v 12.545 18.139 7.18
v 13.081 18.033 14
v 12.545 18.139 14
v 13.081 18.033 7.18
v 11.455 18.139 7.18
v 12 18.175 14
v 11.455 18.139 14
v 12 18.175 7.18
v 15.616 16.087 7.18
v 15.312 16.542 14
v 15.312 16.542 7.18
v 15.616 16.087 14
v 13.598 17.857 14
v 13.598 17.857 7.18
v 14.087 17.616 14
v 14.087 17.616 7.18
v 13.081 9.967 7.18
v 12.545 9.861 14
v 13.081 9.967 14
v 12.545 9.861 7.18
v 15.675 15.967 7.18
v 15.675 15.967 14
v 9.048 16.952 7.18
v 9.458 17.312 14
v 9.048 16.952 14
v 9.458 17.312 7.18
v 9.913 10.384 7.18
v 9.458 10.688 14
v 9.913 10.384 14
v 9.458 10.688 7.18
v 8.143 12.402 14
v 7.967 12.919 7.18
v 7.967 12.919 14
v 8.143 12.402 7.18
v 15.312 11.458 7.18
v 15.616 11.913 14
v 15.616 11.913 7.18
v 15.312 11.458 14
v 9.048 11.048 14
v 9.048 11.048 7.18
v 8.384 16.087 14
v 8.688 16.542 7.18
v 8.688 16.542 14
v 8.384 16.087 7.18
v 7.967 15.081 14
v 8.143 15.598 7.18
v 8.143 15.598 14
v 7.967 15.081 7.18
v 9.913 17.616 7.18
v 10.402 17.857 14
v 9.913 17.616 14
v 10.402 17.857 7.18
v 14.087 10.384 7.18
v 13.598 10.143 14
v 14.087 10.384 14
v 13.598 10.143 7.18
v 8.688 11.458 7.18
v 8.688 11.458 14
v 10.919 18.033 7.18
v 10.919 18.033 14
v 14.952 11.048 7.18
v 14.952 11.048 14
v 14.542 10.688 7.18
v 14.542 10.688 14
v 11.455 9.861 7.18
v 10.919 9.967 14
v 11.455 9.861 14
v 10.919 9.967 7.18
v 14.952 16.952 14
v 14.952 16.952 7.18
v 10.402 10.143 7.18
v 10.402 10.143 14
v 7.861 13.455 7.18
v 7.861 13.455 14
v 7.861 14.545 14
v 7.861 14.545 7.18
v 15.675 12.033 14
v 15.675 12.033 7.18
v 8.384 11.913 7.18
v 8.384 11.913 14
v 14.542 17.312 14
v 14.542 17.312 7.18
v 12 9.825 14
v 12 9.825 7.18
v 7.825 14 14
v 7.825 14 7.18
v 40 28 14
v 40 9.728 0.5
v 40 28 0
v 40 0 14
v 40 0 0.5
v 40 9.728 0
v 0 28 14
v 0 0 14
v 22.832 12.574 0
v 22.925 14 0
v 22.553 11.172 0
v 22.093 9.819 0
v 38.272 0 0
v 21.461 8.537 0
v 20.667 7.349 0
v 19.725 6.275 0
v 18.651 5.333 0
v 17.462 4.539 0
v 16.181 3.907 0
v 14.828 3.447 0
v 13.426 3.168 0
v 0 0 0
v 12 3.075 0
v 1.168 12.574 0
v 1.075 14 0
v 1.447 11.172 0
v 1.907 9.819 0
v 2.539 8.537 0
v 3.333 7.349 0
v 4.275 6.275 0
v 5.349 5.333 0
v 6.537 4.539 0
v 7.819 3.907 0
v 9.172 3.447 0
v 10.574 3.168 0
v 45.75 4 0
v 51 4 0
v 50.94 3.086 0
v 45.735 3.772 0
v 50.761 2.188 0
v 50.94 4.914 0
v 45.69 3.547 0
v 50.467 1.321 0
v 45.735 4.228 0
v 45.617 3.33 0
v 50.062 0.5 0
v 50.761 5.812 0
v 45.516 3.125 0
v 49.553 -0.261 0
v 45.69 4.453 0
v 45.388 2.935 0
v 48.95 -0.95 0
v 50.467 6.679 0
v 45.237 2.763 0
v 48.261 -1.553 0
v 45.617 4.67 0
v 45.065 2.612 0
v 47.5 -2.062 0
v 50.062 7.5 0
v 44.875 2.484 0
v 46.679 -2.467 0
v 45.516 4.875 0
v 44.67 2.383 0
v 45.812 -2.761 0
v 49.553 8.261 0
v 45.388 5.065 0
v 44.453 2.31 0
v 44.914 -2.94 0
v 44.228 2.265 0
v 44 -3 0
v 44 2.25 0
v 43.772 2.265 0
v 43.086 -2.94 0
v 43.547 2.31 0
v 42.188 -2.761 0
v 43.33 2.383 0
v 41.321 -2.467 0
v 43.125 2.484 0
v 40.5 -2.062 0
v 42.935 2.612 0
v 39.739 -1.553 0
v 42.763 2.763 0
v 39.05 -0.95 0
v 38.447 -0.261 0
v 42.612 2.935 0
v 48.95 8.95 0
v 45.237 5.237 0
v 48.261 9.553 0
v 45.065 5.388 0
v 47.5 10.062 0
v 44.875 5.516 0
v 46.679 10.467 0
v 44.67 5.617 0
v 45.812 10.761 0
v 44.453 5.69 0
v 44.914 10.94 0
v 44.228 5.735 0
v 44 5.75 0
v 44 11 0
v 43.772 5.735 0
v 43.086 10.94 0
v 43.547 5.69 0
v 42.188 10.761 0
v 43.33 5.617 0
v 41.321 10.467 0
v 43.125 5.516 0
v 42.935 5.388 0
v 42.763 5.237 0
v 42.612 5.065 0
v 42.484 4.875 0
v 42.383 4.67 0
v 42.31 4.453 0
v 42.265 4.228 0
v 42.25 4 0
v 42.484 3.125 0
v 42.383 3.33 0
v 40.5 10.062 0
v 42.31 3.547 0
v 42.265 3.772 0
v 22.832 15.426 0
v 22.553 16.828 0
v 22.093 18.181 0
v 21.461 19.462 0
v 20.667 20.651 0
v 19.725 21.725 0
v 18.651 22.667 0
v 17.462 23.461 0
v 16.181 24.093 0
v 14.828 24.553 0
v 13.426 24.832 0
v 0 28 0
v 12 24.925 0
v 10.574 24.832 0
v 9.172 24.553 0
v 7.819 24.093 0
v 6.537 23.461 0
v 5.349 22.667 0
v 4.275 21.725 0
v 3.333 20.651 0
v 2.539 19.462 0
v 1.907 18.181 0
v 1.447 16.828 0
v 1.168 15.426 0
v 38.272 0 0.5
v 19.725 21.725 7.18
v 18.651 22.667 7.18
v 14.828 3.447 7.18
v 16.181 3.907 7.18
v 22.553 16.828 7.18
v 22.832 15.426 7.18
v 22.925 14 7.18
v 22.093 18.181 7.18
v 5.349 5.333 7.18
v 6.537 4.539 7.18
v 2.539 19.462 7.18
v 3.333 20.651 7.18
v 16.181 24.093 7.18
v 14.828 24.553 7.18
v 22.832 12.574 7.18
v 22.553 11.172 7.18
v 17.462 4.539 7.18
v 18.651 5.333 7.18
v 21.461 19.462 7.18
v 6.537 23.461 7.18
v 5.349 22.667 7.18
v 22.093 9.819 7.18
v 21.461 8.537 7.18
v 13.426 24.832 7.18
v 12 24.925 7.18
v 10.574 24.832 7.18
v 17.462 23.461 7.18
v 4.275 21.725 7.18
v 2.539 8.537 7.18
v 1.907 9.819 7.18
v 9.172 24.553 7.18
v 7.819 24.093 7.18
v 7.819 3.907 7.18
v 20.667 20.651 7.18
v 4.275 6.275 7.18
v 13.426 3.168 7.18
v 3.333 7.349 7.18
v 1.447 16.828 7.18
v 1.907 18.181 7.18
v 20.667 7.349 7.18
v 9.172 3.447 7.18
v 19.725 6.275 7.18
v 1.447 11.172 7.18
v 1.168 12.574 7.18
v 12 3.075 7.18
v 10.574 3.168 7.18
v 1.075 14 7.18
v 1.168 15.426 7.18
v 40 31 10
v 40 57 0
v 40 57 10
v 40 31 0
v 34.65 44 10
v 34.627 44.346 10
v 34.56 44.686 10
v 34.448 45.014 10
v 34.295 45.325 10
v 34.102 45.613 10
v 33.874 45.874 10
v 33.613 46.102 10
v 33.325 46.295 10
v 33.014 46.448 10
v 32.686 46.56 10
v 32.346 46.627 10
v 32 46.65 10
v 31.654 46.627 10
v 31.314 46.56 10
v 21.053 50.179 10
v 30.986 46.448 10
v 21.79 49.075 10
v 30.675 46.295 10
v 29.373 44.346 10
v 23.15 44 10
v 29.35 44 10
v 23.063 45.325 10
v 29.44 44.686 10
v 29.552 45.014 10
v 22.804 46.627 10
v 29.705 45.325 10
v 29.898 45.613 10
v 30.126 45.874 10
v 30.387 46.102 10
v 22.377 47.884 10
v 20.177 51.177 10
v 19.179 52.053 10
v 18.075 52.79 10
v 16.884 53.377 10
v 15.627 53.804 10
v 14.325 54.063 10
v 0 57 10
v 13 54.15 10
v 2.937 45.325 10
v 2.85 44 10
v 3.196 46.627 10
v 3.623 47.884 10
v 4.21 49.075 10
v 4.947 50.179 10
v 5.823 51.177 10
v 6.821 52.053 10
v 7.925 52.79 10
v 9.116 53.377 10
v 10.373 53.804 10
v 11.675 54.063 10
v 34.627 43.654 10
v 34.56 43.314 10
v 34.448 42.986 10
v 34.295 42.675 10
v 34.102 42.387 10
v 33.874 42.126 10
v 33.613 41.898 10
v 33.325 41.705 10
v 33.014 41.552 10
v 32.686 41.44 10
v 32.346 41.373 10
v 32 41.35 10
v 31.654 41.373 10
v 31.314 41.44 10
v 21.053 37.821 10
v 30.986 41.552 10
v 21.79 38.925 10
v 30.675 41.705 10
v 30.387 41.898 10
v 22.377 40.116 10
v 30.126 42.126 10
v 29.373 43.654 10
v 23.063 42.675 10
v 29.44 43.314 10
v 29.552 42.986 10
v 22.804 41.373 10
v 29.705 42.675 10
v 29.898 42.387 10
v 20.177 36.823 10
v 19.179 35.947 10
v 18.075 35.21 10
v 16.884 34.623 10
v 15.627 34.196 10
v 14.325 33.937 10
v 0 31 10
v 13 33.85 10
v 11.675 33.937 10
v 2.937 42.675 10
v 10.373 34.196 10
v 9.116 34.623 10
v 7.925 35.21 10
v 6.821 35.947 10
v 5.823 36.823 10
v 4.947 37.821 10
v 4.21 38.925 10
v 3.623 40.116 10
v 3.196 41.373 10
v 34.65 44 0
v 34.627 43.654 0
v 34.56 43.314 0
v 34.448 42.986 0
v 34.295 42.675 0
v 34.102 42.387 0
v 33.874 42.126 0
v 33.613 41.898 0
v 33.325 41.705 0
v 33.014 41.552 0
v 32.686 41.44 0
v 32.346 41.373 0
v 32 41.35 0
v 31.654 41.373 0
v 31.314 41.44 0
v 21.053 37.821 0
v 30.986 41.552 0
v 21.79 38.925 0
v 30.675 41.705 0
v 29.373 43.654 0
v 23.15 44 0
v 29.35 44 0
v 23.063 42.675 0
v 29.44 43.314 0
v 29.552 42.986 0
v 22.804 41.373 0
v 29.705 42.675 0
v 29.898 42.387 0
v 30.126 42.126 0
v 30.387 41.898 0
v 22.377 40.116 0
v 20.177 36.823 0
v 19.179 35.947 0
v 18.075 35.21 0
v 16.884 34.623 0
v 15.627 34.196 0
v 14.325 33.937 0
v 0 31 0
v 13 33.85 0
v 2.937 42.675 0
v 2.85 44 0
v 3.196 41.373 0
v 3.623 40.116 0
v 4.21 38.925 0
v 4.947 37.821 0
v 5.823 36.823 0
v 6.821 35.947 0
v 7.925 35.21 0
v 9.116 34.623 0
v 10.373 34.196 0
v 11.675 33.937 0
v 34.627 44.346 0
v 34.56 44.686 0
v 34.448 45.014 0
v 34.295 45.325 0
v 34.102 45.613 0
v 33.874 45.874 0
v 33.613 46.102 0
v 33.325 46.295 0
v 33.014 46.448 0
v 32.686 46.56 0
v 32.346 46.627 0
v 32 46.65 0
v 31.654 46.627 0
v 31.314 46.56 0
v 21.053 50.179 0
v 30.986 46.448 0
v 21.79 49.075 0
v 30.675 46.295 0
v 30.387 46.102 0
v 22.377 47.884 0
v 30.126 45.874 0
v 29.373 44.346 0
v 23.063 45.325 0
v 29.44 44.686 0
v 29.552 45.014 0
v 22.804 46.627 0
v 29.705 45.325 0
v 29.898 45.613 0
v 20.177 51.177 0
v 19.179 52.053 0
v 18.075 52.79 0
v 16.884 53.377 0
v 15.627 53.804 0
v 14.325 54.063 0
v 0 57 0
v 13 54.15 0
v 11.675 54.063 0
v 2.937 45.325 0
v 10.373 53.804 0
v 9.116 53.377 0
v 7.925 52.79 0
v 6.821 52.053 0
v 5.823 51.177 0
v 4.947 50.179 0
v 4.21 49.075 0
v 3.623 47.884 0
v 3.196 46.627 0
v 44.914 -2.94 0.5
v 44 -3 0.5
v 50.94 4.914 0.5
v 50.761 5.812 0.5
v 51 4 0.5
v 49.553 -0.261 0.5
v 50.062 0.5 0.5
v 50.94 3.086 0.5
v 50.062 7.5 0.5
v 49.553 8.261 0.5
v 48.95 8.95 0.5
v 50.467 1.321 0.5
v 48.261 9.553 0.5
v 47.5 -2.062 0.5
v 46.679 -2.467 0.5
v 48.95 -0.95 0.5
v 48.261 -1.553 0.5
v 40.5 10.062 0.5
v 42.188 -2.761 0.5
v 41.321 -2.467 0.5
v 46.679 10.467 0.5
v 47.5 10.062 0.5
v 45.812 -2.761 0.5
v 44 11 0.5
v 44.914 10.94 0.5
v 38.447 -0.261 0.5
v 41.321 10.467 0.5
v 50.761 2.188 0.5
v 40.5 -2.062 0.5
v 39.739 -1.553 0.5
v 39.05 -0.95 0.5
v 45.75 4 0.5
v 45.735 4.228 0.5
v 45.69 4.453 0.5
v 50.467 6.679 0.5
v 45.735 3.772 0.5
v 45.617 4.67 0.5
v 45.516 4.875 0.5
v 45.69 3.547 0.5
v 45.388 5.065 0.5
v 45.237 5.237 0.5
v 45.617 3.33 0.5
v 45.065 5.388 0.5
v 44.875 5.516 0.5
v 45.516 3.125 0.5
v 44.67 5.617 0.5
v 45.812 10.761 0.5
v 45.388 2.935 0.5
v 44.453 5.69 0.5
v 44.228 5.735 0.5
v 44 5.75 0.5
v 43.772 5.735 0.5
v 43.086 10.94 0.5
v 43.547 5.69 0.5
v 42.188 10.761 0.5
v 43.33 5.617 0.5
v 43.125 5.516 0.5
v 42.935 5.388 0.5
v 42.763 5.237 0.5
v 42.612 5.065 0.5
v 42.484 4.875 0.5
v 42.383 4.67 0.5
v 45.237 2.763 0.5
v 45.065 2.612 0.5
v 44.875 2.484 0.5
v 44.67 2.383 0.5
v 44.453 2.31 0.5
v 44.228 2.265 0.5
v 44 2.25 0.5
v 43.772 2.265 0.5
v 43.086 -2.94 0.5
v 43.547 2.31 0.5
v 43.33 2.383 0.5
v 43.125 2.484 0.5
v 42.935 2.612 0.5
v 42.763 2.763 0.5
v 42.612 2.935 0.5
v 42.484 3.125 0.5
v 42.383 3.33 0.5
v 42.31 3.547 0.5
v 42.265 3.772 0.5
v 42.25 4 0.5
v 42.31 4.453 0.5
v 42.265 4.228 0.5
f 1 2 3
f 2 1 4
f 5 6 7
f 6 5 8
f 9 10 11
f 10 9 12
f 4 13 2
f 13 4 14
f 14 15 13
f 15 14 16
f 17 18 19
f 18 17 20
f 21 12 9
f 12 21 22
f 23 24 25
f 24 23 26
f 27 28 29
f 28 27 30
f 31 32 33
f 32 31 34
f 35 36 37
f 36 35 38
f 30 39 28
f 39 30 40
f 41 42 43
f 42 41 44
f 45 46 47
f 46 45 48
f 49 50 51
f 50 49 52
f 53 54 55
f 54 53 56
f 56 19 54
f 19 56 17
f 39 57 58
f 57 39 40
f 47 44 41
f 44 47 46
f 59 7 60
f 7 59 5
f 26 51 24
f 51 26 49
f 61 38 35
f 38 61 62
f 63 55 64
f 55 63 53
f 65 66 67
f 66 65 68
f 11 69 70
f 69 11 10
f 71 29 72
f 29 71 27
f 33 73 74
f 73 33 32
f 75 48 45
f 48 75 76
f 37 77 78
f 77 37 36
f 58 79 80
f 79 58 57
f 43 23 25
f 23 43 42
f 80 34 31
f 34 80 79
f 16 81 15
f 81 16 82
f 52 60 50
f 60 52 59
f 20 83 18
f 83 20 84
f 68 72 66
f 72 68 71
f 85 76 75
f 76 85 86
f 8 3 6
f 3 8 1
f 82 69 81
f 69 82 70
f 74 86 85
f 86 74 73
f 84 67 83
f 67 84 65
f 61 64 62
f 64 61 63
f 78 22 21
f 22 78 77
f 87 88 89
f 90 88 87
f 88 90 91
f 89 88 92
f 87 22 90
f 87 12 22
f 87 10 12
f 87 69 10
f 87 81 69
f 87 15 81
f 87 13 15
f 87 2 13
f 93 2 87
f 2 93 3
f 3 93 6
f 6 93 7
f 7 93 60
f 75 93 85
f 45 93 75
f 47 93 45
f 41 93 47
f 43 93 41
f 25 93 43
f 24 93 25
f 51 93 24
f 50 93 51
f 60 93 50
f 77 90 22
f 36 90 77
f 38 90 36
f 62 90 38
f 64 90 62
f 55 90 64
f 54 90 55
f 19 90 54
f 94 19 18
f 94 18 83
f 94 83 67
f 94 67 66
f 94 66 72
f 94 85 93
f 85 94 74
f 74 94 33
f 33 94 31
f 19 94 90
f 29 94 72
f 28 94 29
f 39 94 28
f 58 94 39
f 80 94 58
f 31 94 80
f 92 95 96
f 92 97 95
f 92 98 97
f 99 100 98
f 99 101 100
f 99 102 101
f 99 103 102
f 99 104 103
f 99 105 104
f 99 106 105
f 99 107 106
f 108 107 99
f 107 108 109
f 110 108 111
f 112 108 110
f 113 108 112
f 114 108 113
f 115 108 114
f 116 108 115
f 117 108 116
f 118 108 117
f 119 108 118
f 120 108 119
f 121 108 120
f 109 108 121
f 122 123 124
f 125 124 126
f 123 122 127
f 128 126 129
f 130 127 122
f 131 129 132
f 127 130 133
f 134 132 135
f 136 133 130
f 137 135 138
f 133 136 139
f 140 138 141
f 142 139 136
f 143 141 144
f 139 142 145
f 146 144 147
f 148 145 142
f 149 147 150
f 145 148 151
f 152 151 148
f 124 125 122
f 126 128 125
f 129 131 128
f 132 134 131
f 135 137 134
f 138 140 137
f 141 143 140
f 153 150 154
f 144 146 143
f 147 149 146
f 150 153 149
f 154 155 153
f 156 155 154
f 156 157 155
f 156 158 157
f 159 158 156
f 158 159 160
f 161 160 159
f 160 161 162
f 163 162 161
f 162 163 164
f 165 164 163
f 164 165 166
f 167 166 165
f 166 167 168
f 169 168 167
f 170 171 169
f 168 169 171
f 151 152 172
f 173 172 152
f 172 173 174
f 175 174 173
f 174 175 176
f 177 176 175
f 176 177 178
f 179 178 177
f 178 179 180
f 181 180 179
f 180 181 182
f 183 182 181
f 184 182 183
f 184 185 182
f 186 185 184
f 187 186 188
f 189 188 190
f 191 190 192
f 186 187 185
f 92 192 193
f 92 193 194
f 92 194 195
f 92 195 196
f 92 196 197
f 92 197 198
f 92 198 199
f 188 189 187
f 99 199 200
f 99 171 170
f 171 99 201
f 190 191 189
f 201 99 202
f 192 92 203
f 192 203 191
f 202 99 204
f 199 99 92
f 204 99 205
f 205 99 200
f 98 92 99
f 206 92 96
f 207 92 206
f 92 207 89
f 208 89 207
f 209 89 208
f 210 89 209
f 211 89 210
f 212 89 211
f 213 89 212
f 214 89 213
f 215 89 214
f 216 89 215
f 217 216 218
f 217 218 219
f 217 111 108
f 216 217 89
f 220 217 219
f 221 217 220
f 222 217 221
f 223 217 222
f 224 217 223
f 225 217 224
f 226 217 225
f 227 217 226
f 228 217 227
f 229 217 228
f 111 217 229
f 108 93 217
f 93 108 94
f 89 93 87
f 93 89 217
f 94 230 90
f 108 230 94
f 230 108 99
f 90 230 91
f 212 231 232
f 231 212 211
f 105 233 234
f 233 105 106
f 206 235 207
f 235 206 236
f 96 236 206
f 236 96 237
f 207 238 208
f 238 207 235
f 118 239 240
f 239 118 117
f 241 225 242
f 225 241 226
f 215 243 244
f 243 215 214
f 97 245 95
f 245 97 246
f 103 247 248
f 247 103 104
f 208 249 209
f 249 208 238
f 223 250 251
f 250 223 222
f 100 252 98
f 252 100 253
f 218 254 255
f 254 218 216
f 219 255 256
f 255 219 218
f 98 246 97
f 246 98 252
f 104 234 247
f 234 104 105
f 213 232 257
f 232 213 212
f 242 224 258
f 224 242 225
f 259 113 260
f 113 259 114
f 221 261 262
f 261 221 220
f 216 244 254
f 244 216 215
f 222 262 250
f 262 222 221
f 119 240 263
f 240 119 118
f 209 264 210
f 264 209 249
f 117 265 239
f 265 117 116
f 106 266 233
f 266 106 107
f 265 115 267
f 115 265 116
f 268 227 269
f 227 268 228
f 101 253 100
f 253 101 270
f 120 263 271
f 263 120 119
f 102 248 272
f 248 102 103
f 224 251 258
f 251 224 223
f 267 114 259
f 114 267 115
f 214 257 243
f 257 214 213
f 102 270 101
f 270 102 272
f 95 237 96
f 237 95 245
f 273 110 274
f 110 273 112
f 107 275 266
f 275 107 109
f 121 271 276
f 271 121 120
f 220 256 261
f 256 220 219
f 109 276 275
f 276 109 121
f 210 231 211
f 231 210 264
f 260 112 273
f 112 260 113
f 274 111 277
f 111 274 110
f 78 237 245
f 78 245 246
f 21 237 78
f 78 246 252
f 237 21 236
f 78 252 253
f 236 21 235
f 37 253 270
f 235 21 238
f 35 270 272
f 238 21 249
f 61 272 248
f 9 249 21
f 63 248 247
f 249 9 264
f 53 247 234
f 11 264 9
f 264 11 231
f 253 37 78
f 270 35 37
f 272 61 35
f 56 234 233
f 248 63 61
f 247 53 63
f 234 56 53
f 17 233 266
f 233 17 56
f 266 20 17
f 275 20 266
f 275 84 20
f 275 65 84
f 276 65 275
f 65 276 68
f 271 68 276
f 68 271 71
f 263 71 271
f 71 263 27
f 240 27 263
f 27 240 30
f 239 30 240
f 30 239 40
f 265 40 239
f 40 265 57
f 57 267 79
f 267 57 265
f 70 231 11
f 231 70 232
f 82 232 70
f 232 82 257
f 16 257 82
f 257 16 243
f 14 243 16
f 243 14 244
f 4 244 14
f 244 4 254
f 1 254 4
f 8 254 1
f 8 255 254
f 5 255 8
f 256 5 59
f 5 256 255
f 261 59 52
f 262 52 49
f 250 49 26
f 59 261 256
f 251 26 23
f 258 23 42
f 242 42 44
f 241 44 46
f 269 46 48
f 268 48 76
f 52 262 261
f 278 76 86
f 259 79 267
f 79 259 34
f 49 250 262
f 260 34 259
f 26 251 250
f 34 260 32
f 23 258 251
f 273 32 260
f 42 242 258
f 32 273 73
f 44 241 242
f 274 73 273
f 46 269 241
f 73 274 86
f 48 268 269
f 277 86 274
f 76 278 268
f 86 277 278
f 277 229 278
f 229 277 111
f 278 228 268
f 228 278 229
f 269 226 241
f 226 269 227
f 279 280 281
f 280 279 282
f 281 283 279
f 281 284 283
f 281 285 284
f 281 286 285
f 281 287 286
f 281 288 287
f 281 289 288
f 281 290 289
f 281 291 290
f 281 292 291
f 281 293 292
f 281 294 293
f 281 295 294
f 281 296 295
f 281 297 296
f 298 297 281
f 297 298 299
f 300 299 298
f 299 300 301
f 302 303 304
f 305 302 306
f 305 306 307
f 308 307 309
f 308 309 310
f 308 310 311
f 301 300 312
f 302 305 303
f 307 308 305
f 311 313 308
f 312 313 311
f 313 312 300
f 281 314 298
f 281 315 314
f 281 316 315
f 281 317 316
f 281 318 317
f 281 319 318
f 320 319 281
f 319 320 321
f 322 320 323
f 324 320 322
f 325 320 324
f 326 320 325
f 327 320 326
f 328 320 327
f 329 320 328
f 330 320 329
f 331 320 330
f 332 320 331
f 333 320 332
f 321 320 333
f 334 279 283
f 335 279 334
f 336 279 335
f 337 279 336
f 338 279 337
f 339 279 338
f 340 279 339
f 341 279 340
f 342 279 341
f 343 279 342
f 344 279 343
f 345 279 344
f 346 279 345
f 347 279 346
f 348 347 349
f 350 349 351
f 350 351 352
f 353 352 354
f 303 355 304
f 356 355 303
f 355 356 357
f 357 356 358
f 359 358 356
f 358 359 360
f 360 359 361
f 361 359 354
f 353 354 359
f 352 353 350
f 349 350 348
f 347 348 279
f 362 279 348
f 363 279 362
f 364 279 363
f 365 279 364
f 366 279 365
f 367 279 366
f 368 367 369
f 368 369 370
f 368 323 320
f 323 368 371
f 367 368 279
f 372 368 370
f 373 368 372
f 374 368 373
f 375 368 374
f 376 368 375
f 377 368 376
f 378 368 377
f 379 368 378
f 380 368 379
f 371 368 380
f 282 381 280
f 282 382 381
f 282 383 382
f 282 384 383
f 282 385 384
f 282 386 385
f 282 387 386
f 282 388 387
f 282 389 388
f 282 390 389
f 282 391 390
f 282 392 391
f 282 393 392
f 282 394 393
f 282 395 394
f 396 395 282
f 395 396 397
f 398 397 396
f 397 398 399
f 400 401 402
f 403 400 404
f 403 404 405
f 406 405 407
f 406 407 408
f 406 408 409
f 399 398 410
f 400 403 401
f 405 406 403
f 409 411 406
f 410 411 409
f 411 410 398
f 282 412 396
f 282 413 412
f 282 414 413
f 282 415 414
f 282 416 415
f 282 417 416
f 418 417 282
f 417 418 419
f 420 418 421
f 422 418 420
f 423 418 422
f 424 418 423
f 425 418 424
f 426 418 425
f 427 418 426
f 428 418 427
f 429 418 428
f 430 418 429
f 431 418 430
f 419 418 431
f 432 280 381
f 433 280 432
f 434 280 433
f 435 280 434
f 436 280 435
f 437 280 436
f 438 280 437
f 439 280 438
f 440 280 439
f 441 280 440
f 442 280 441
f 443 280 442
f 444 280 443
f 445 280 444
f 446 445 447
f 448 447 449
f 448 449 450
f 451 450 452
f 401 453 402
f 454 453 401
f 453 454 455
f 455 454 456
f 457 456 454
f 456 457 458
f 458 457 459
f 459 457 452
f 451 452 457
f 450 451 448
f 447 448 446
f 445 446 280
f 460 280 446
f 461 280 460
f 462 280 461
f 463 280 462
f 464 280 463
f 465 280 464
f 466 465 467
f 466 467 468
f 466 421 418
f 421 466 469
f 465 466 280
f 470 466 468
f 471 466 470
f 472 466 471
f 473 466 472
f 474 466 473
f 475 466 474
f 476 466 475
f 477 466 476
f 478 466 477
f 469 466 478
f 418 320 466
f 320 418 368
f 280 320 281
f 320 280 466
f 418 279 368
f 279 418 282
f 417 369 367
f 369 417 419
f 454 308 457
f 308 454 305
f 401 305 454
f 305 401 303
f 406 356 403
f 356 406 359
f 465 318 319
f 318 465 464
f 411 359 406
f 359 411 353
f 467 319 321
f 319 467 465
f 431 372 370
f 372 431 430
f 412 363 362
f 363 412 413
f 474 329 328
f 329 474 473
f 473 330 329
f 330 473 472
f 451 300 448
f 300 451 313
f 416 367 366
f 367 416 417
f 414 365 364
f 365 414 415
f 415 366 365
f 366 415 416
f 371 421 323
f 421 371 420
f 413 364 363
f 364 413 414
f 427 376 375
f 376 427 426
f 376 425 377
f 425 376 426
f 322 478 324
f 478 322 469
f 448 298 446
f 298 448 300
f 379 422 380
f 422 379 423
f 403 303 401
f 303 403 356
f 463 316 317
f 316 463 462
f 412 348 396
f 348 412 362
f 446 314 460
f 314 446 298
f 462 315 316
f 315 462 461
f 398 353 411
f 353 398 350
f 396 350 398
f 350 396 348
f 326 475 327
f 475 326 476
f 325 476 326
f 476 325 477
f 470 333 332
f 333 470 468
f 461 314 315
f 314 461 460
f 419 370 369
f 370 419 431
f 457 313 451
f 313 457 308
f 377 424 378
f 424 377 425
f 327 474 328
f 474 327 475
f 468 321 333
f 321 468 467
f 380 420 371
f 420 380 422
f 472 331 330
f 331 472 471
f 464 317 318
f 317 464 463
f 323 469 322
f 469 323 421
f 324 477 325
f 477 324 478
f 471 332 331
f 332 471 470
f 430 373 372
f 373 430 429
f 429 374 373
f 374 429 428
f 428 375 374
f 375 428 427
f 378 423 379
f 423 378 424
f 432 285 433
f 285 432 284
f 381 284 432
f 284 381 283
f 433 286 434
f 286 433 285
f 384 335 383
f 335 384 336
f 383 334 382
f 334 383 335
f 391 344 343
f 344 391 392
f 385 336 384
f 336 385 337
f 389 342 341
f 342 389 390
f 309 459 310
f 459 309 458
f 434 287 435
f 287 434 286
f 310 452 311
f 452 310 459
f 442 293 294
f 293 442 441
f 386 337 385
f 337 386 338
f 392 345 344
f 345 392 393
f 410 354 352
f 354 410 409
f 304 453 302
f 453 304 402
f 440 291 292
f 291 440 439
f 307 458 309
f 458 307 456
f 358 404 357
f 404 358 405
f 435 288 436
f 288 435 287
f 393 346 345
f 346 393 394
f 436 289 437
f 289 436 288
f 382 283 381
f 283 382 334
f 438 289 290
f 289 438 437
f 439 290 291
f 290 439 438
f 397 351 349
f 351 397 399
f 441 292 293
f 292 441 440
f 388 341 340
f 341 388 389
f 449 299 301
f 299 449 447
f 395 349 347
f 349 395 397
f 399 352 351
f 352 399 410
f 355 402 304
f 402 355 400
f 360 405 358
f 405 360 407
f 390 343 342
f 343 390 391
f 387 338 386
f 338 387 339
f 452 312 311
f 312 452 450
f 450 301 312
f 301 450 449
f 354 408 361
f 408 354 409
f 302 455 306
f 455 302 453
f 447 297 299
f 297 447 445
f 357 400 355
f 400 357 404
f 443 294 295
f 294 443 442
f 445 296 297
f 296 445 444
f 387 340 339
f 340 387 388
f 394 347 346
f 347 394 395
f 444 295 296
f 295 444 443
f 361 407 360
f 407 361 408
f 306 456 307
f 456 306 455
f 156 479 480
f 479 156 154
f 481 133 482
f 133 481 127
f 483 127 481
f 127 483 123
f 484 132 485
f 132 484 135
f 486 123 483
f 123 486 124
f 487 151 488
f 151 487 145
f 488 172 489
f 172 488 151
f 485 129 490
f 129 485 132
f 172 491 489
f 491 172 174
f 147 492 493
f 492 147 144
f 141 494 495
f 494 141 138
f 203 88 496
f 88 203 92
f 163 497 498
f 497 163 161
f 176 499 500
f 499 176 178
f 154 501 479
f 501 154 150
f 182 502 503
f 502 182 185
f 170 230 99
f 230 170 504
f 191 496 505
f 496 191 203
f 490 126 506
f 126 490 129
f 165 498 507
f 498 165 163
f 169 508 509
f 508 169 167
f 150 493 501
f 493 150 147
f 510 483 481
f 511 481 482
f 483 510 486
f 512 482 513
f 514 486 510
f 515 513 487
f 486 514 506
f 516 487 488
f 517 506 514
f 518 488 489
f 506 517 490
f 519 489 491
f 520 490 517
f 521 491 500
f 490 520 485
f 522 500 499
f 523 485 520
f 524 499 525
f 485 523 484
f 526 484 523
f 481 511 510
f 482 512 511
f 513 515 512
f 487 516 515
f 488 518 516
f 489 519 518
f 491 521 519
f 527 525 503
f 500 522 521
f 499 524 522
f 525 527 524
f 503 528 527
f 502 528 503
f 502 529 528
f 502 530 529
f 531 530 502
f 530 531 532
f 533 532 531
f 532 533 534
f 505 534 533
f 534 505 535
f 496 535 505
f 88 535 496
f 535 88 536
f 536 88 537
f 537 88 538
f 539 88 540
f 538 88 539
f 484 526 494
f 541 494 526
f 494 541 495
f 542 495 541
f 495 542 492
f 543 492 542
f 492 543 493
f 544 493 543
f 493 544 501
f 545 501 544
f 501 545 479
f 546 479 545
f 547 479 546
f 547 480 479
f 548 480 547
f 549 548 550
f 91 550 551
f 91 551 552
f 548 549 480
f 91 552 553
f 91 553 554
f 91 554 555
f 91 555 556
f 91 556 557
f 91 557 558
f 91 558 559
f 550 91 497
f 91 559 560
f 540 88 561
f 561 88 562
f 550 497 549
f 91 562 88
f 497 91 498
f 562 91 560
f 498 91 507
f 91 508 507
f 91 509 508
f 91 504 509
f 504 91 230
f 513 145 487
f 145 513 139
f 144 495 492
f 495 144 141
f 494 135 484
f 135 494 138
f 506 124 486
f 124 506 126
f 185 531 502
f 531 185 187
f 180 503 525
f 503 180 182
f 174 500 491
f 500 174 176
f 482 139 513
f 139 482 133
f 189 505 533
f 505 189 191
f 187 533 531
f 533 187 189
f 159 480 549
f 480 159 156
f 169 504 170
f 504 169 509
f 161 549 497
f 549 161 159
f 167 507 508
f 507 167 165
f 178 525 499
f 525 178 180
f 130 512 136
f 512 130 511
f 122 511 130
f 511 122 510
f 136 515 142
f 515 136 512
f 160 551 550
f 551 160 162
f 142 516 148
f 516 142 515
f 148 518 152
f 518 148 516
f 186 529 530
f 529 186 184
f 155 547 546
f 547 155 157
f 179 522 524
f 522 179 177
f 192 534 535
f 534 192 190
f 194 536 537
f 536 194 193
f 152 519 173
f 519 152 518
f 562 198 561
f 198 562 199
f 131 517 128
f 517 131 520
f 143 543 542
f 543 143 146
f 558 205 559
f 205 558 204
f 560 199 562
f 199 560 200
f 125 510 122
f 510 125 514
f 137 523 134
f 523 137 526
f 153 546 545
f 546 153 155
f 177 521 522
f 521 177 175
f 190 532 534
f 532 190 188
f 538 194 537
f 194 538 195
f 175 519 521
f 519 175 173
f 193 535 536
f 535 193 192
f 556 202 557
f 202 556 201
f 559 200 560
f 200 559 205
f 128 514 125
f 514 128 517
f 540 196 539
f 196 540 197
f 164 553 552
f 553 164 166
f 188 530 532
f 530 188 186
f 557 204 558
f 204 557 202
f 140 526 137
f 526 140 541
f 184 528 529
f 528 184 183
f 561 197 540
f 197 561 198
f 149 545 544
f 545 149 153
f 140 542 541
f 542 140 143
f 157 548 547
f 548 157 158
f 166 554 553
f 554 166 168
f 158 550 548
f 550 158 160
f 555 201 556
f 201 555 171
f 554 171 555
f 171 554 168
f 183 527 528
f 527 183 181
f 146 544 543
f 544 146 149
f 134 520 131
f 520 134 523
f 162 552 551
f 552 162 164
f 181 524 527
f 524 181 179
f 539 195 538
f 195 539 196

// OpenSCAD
// file: parameters.scad
// =============================================================================
// Gen-BW — nightly 2026-10-10 (physics_scorer, honest magpylib watts)
// Stacked poles: two Ø20×5 per pocket (10 mm poles), 4 per rotor at R52, trading pole count for field — peak Bz at the copper rises to ≈0.73 T (vs 0.54 T on Gen-BR), which lets a thin 6.75 mm copper layer with a very deep 21 mm build carry the turns. But the electrical frequency halves, and the scorer puts it at about 45 % of Gen-BR: the thicker magnets do not make up for half the poles.
// Clocking 0 deg (magnets N facing S) + D-flat keyed bore + index notch + flip-symmetric hole map.
// Windable 2-piece bobbin; turns = physics_scorer turns_fit; copper only between flanges.
// Steel back-iron: 2× Ø134 × 6.35 mm (1/4") mild-steel discs (steel_backiron_disc.dxf); magnets sit ON the steel
// (through-pockets) -> score with --back-iron. Night 2026-10-10.
// =============================================================================
topology            = "dual_rotor";

// --- Wire / winding (physics_scorer winding-fit) -------------------------------
wire_awg            = 26;
wire_od             = 0.45;     // insulated OD mm (bare 0.405)
fill_realistic      = 0.65;     // insulated-wire area / window (DENSE layered wind with a jig; scorer cap 0.65)
turns               = 586;       // = physics_scorer turns_fit (do NOT raise)
coil_former_type    = "bobbin";
coil_core_inset     = 21.25;     // radial copper build: hub = copper boundary inset by this
wind_build_axial    = 0.0;      // nothing proud of the flanges
wind_build_radial   = 0.0;

// --- Bobbin (base + lid) ---------------------------------------------------------
coil_id_r           = 26.00;    // copper boundary sector
coil_od_r           = 74.00;
span_deg            = 52.72;    // = pitch - 2*asin((wall+0.85)/coil_id_r) -> >=1.2 mm stator web
former_web          = 6.75;     // copper height between flanges (TALL copper: steel keeps Bz up)
flange_t            = 0.80;     // >= 0.8 mm FDM wall rule (tall winds push on the flanges)
wall                = 0.80;     // flange lip beyond copper
former_bare_h       = former_web + 2 * flange_t;
coil_envelope_h     = former_bare_h + 2 * wind_build_axial;
tab_w               = 7.0;
tab_len             = 7.0;
tab_h               = former_bare_h / 2;
pin_d               = 1.9;      // 1.75 mm filament locating pin
coil_mount_r        = coil_od_r + 0.2 + 4.0;
lead_y              = 1.6;
lead_slot_w         = 0.9;
lead_groove_d       = 0.6;

// --- Gap -------------------------------------------------------------------------
run_clear           = 0.50;     // rotor face -> flange
gap_spacer_h        = run_clear + wind_build_axial;
m2m                 = coil_envelope_h + 2 * run_clear;   // rotor face to rotor face (= gap_sleeve length)

// --- Stator ----------------------------------------------------------------------
coil_stations       = 6;
bay_clear           = 0.25;
stator_thick        = former_bare_h;                        // bobbins flush both faces
stator_od           = 166;
shaft_clear_stator  = 14.0;     // stator is static; gap sleeve OD 12 spins inside

// --- Rotor(s) --------------------------------------------------------------------
magnet_Br           = 1.43;     // N52
magnet_d_large      = 20.0;
magnet_h_large      = 10.0;      // two O20x5 stacked per pocket
magnet_h_small      = 5.0;      // unused: no O5 pockets in this kit
halbach_magnetisation = "none";  // NO O5 assist magnets in this kit (scan: they lower the 4-pole score)
rotor_b_same_axis   = true;     // same-index magnets share one axis: N faces S across the gap
large_pocket_d      = 20.3;
small_pocket_d      = 5.3;
pocket_h            = 10.00;     // THROUGH the carrier: magnet back face sits on the steel disc (FLUSH seat: carrier = magnet height, magnet face level with the rotor face)
large_n             = 4;
R_large             = 52.0;
small_r_list        = [];       // no O5 pockets
carrier_od          = 134.0;
carrier_thick       = pocket_h;
hub_h               = 14.0;     // > steel_t + insert: radial set-screw clears the steel
hub_od              = 24.0;     // slim hub so the M4 brace rods fit at R~18 inside the coil ring
hub_insert_d        = 4.0;      // M3 heat-set insert, radial, bears on the D-flat
rotor_b_offset_deg  = 0.0;      // CLOCKING: magnets directly opposite
shaft_key           = "dflat";
dflat_depth         = 0.5;      // 8 mm shaft with 0.5 mm flat (7.5 across flat)
index_notch_d       = 3.0;

// --- Steel back-iron (buyable laser-cut) -------------------------------------------
steel_t             = 6.35;      // mild steel thickness (image method ignores it; sized from steel_flux.py so the return path stays well below saturation)
steel_center_hole   = 26.0;     // slips over the rotor hub (OD 24)
steel_od            = carrier_od;   // steel disc OD = rotor carrier OD

// --- Modular MAX interface ----------------------------------------------------------
shaft_bore          = 8.35;
dflat_x             = 4.0 - dflat_depth + (shaft_bore - 8.0) / 2;
bearing_d           = 21.85;
bearing_h           = 7.2;
m3_clear            = 3.5;
bolt_r_inner        = 30.0;     // M3 steel-disc clamp bolts (inside the magnet ring)
bolt_n_inner        = 4;
bolt_inner_angles   = [0, 90, 180, 270];
bolt_r_outer        = 63.0;     // second M3 steel-disc clamp ring
bolt_outer_angles   = [45, 135, 225, 315];
flange_bolt_r       = 73.0;     // frame rods: OUTSIDE the rotor OD (rotors spin inside them)
flange_bolt_n       = 6;
flange_bolt_offset  = 30.00;    // between coil stations -> never cuts a lead groove/tab
brace_r             = 18.0;
brace_d             = 4.3;      // temporary M4 jack rods (assembly only)
brace_n             = 4;
brace_angles        = [45, 135, 225, 315];          // flip-symmetric

spacer_pad_od       = 14.0;
spacer_pad_id       = m3_clear;
endbell_od          = 156.0;
endbell_thick       = 8.0;
endbell_shaft_clear = 10.0;
collar_h            = 10.0;
standoff_od         = 9.0;
frame_standoff_h    = run_clear + carrier_thick + hub_h + collar_h + 2.0;
sleeve_od           = 12.0;
plate_max_mm        = 410;

$fn = 64;
// main file
// Gen-BW — fit coupon: O20/O5 THROUGH pockets at carrier thickness (test on a steel offcut), 608 seat,
// D-flat bore, gap shim, and one bobbin-bay slice (bobbin footprint + bay_clear) to test former fit.
include <parameters.scad>;
$fn = 48;
// D-flat keyed bore: flat faces +X (angle 0 = magnet pocket 0 = index notch)
module dflat_bore(h) {
    intersection() {
        cylinder(d=shaft_bore, h=h);
        translate([-shaft_bore, -shaft_bore, 0]) cube([shaft_bore + dflat_x, 2*shaft_bore, h]);
    }
}
module sector_2d(r_in, r_out, ang) {
    polygon([
        for (a = [-ang/2 : ang/24 : ang/2]) [r_in*cos(a), r_in*sin(a)],
        for (a = [ang/2 : -ang/24 : -ang/2]) [r_out*cos(a), r_out*sin(a)]
    ]);
}
module footprint_2d() { offset(r=wall) sector_2d(coil_id_r, coil_od_r, span_deg); }
module hub_2d()       { offset(delta=-coil_core_inset) sector_2d(coil_id_r, coil_od_r, span_deg); }

block_w = 40; block_d = 28; block_h = 14;
difference() {
    cube([block_w, block_d, block_h]);
    translate([12, block_d/2, -0.02]) cylinder(d=bearing_d, h=bearing_h);
    translate([12, block_d/2, -0.1]) dflat_bore(block_h + 1);
}
translate([0, block_d + 3, 0]) difference() {
    cube([40, 26, carrier_thick]);
    translate([13, 13, -0.1]) cylinder(d=large_pocket_d, h=carrier_thick + 0.2);
    translate([32, 13, -0.1]) cylinder(d=small_pocket_d, h=carrier_thick + 0.2);
}
translate([block_w + 4, 4, 0])
    difference() {
        cylinder(d=spacer_pad_od, h=gap_spacer_h);
        translate([0, 0, -0.1]) cylinder(d=spacer_pad_id, h=gap_spacer_h + 0.2);
    }
